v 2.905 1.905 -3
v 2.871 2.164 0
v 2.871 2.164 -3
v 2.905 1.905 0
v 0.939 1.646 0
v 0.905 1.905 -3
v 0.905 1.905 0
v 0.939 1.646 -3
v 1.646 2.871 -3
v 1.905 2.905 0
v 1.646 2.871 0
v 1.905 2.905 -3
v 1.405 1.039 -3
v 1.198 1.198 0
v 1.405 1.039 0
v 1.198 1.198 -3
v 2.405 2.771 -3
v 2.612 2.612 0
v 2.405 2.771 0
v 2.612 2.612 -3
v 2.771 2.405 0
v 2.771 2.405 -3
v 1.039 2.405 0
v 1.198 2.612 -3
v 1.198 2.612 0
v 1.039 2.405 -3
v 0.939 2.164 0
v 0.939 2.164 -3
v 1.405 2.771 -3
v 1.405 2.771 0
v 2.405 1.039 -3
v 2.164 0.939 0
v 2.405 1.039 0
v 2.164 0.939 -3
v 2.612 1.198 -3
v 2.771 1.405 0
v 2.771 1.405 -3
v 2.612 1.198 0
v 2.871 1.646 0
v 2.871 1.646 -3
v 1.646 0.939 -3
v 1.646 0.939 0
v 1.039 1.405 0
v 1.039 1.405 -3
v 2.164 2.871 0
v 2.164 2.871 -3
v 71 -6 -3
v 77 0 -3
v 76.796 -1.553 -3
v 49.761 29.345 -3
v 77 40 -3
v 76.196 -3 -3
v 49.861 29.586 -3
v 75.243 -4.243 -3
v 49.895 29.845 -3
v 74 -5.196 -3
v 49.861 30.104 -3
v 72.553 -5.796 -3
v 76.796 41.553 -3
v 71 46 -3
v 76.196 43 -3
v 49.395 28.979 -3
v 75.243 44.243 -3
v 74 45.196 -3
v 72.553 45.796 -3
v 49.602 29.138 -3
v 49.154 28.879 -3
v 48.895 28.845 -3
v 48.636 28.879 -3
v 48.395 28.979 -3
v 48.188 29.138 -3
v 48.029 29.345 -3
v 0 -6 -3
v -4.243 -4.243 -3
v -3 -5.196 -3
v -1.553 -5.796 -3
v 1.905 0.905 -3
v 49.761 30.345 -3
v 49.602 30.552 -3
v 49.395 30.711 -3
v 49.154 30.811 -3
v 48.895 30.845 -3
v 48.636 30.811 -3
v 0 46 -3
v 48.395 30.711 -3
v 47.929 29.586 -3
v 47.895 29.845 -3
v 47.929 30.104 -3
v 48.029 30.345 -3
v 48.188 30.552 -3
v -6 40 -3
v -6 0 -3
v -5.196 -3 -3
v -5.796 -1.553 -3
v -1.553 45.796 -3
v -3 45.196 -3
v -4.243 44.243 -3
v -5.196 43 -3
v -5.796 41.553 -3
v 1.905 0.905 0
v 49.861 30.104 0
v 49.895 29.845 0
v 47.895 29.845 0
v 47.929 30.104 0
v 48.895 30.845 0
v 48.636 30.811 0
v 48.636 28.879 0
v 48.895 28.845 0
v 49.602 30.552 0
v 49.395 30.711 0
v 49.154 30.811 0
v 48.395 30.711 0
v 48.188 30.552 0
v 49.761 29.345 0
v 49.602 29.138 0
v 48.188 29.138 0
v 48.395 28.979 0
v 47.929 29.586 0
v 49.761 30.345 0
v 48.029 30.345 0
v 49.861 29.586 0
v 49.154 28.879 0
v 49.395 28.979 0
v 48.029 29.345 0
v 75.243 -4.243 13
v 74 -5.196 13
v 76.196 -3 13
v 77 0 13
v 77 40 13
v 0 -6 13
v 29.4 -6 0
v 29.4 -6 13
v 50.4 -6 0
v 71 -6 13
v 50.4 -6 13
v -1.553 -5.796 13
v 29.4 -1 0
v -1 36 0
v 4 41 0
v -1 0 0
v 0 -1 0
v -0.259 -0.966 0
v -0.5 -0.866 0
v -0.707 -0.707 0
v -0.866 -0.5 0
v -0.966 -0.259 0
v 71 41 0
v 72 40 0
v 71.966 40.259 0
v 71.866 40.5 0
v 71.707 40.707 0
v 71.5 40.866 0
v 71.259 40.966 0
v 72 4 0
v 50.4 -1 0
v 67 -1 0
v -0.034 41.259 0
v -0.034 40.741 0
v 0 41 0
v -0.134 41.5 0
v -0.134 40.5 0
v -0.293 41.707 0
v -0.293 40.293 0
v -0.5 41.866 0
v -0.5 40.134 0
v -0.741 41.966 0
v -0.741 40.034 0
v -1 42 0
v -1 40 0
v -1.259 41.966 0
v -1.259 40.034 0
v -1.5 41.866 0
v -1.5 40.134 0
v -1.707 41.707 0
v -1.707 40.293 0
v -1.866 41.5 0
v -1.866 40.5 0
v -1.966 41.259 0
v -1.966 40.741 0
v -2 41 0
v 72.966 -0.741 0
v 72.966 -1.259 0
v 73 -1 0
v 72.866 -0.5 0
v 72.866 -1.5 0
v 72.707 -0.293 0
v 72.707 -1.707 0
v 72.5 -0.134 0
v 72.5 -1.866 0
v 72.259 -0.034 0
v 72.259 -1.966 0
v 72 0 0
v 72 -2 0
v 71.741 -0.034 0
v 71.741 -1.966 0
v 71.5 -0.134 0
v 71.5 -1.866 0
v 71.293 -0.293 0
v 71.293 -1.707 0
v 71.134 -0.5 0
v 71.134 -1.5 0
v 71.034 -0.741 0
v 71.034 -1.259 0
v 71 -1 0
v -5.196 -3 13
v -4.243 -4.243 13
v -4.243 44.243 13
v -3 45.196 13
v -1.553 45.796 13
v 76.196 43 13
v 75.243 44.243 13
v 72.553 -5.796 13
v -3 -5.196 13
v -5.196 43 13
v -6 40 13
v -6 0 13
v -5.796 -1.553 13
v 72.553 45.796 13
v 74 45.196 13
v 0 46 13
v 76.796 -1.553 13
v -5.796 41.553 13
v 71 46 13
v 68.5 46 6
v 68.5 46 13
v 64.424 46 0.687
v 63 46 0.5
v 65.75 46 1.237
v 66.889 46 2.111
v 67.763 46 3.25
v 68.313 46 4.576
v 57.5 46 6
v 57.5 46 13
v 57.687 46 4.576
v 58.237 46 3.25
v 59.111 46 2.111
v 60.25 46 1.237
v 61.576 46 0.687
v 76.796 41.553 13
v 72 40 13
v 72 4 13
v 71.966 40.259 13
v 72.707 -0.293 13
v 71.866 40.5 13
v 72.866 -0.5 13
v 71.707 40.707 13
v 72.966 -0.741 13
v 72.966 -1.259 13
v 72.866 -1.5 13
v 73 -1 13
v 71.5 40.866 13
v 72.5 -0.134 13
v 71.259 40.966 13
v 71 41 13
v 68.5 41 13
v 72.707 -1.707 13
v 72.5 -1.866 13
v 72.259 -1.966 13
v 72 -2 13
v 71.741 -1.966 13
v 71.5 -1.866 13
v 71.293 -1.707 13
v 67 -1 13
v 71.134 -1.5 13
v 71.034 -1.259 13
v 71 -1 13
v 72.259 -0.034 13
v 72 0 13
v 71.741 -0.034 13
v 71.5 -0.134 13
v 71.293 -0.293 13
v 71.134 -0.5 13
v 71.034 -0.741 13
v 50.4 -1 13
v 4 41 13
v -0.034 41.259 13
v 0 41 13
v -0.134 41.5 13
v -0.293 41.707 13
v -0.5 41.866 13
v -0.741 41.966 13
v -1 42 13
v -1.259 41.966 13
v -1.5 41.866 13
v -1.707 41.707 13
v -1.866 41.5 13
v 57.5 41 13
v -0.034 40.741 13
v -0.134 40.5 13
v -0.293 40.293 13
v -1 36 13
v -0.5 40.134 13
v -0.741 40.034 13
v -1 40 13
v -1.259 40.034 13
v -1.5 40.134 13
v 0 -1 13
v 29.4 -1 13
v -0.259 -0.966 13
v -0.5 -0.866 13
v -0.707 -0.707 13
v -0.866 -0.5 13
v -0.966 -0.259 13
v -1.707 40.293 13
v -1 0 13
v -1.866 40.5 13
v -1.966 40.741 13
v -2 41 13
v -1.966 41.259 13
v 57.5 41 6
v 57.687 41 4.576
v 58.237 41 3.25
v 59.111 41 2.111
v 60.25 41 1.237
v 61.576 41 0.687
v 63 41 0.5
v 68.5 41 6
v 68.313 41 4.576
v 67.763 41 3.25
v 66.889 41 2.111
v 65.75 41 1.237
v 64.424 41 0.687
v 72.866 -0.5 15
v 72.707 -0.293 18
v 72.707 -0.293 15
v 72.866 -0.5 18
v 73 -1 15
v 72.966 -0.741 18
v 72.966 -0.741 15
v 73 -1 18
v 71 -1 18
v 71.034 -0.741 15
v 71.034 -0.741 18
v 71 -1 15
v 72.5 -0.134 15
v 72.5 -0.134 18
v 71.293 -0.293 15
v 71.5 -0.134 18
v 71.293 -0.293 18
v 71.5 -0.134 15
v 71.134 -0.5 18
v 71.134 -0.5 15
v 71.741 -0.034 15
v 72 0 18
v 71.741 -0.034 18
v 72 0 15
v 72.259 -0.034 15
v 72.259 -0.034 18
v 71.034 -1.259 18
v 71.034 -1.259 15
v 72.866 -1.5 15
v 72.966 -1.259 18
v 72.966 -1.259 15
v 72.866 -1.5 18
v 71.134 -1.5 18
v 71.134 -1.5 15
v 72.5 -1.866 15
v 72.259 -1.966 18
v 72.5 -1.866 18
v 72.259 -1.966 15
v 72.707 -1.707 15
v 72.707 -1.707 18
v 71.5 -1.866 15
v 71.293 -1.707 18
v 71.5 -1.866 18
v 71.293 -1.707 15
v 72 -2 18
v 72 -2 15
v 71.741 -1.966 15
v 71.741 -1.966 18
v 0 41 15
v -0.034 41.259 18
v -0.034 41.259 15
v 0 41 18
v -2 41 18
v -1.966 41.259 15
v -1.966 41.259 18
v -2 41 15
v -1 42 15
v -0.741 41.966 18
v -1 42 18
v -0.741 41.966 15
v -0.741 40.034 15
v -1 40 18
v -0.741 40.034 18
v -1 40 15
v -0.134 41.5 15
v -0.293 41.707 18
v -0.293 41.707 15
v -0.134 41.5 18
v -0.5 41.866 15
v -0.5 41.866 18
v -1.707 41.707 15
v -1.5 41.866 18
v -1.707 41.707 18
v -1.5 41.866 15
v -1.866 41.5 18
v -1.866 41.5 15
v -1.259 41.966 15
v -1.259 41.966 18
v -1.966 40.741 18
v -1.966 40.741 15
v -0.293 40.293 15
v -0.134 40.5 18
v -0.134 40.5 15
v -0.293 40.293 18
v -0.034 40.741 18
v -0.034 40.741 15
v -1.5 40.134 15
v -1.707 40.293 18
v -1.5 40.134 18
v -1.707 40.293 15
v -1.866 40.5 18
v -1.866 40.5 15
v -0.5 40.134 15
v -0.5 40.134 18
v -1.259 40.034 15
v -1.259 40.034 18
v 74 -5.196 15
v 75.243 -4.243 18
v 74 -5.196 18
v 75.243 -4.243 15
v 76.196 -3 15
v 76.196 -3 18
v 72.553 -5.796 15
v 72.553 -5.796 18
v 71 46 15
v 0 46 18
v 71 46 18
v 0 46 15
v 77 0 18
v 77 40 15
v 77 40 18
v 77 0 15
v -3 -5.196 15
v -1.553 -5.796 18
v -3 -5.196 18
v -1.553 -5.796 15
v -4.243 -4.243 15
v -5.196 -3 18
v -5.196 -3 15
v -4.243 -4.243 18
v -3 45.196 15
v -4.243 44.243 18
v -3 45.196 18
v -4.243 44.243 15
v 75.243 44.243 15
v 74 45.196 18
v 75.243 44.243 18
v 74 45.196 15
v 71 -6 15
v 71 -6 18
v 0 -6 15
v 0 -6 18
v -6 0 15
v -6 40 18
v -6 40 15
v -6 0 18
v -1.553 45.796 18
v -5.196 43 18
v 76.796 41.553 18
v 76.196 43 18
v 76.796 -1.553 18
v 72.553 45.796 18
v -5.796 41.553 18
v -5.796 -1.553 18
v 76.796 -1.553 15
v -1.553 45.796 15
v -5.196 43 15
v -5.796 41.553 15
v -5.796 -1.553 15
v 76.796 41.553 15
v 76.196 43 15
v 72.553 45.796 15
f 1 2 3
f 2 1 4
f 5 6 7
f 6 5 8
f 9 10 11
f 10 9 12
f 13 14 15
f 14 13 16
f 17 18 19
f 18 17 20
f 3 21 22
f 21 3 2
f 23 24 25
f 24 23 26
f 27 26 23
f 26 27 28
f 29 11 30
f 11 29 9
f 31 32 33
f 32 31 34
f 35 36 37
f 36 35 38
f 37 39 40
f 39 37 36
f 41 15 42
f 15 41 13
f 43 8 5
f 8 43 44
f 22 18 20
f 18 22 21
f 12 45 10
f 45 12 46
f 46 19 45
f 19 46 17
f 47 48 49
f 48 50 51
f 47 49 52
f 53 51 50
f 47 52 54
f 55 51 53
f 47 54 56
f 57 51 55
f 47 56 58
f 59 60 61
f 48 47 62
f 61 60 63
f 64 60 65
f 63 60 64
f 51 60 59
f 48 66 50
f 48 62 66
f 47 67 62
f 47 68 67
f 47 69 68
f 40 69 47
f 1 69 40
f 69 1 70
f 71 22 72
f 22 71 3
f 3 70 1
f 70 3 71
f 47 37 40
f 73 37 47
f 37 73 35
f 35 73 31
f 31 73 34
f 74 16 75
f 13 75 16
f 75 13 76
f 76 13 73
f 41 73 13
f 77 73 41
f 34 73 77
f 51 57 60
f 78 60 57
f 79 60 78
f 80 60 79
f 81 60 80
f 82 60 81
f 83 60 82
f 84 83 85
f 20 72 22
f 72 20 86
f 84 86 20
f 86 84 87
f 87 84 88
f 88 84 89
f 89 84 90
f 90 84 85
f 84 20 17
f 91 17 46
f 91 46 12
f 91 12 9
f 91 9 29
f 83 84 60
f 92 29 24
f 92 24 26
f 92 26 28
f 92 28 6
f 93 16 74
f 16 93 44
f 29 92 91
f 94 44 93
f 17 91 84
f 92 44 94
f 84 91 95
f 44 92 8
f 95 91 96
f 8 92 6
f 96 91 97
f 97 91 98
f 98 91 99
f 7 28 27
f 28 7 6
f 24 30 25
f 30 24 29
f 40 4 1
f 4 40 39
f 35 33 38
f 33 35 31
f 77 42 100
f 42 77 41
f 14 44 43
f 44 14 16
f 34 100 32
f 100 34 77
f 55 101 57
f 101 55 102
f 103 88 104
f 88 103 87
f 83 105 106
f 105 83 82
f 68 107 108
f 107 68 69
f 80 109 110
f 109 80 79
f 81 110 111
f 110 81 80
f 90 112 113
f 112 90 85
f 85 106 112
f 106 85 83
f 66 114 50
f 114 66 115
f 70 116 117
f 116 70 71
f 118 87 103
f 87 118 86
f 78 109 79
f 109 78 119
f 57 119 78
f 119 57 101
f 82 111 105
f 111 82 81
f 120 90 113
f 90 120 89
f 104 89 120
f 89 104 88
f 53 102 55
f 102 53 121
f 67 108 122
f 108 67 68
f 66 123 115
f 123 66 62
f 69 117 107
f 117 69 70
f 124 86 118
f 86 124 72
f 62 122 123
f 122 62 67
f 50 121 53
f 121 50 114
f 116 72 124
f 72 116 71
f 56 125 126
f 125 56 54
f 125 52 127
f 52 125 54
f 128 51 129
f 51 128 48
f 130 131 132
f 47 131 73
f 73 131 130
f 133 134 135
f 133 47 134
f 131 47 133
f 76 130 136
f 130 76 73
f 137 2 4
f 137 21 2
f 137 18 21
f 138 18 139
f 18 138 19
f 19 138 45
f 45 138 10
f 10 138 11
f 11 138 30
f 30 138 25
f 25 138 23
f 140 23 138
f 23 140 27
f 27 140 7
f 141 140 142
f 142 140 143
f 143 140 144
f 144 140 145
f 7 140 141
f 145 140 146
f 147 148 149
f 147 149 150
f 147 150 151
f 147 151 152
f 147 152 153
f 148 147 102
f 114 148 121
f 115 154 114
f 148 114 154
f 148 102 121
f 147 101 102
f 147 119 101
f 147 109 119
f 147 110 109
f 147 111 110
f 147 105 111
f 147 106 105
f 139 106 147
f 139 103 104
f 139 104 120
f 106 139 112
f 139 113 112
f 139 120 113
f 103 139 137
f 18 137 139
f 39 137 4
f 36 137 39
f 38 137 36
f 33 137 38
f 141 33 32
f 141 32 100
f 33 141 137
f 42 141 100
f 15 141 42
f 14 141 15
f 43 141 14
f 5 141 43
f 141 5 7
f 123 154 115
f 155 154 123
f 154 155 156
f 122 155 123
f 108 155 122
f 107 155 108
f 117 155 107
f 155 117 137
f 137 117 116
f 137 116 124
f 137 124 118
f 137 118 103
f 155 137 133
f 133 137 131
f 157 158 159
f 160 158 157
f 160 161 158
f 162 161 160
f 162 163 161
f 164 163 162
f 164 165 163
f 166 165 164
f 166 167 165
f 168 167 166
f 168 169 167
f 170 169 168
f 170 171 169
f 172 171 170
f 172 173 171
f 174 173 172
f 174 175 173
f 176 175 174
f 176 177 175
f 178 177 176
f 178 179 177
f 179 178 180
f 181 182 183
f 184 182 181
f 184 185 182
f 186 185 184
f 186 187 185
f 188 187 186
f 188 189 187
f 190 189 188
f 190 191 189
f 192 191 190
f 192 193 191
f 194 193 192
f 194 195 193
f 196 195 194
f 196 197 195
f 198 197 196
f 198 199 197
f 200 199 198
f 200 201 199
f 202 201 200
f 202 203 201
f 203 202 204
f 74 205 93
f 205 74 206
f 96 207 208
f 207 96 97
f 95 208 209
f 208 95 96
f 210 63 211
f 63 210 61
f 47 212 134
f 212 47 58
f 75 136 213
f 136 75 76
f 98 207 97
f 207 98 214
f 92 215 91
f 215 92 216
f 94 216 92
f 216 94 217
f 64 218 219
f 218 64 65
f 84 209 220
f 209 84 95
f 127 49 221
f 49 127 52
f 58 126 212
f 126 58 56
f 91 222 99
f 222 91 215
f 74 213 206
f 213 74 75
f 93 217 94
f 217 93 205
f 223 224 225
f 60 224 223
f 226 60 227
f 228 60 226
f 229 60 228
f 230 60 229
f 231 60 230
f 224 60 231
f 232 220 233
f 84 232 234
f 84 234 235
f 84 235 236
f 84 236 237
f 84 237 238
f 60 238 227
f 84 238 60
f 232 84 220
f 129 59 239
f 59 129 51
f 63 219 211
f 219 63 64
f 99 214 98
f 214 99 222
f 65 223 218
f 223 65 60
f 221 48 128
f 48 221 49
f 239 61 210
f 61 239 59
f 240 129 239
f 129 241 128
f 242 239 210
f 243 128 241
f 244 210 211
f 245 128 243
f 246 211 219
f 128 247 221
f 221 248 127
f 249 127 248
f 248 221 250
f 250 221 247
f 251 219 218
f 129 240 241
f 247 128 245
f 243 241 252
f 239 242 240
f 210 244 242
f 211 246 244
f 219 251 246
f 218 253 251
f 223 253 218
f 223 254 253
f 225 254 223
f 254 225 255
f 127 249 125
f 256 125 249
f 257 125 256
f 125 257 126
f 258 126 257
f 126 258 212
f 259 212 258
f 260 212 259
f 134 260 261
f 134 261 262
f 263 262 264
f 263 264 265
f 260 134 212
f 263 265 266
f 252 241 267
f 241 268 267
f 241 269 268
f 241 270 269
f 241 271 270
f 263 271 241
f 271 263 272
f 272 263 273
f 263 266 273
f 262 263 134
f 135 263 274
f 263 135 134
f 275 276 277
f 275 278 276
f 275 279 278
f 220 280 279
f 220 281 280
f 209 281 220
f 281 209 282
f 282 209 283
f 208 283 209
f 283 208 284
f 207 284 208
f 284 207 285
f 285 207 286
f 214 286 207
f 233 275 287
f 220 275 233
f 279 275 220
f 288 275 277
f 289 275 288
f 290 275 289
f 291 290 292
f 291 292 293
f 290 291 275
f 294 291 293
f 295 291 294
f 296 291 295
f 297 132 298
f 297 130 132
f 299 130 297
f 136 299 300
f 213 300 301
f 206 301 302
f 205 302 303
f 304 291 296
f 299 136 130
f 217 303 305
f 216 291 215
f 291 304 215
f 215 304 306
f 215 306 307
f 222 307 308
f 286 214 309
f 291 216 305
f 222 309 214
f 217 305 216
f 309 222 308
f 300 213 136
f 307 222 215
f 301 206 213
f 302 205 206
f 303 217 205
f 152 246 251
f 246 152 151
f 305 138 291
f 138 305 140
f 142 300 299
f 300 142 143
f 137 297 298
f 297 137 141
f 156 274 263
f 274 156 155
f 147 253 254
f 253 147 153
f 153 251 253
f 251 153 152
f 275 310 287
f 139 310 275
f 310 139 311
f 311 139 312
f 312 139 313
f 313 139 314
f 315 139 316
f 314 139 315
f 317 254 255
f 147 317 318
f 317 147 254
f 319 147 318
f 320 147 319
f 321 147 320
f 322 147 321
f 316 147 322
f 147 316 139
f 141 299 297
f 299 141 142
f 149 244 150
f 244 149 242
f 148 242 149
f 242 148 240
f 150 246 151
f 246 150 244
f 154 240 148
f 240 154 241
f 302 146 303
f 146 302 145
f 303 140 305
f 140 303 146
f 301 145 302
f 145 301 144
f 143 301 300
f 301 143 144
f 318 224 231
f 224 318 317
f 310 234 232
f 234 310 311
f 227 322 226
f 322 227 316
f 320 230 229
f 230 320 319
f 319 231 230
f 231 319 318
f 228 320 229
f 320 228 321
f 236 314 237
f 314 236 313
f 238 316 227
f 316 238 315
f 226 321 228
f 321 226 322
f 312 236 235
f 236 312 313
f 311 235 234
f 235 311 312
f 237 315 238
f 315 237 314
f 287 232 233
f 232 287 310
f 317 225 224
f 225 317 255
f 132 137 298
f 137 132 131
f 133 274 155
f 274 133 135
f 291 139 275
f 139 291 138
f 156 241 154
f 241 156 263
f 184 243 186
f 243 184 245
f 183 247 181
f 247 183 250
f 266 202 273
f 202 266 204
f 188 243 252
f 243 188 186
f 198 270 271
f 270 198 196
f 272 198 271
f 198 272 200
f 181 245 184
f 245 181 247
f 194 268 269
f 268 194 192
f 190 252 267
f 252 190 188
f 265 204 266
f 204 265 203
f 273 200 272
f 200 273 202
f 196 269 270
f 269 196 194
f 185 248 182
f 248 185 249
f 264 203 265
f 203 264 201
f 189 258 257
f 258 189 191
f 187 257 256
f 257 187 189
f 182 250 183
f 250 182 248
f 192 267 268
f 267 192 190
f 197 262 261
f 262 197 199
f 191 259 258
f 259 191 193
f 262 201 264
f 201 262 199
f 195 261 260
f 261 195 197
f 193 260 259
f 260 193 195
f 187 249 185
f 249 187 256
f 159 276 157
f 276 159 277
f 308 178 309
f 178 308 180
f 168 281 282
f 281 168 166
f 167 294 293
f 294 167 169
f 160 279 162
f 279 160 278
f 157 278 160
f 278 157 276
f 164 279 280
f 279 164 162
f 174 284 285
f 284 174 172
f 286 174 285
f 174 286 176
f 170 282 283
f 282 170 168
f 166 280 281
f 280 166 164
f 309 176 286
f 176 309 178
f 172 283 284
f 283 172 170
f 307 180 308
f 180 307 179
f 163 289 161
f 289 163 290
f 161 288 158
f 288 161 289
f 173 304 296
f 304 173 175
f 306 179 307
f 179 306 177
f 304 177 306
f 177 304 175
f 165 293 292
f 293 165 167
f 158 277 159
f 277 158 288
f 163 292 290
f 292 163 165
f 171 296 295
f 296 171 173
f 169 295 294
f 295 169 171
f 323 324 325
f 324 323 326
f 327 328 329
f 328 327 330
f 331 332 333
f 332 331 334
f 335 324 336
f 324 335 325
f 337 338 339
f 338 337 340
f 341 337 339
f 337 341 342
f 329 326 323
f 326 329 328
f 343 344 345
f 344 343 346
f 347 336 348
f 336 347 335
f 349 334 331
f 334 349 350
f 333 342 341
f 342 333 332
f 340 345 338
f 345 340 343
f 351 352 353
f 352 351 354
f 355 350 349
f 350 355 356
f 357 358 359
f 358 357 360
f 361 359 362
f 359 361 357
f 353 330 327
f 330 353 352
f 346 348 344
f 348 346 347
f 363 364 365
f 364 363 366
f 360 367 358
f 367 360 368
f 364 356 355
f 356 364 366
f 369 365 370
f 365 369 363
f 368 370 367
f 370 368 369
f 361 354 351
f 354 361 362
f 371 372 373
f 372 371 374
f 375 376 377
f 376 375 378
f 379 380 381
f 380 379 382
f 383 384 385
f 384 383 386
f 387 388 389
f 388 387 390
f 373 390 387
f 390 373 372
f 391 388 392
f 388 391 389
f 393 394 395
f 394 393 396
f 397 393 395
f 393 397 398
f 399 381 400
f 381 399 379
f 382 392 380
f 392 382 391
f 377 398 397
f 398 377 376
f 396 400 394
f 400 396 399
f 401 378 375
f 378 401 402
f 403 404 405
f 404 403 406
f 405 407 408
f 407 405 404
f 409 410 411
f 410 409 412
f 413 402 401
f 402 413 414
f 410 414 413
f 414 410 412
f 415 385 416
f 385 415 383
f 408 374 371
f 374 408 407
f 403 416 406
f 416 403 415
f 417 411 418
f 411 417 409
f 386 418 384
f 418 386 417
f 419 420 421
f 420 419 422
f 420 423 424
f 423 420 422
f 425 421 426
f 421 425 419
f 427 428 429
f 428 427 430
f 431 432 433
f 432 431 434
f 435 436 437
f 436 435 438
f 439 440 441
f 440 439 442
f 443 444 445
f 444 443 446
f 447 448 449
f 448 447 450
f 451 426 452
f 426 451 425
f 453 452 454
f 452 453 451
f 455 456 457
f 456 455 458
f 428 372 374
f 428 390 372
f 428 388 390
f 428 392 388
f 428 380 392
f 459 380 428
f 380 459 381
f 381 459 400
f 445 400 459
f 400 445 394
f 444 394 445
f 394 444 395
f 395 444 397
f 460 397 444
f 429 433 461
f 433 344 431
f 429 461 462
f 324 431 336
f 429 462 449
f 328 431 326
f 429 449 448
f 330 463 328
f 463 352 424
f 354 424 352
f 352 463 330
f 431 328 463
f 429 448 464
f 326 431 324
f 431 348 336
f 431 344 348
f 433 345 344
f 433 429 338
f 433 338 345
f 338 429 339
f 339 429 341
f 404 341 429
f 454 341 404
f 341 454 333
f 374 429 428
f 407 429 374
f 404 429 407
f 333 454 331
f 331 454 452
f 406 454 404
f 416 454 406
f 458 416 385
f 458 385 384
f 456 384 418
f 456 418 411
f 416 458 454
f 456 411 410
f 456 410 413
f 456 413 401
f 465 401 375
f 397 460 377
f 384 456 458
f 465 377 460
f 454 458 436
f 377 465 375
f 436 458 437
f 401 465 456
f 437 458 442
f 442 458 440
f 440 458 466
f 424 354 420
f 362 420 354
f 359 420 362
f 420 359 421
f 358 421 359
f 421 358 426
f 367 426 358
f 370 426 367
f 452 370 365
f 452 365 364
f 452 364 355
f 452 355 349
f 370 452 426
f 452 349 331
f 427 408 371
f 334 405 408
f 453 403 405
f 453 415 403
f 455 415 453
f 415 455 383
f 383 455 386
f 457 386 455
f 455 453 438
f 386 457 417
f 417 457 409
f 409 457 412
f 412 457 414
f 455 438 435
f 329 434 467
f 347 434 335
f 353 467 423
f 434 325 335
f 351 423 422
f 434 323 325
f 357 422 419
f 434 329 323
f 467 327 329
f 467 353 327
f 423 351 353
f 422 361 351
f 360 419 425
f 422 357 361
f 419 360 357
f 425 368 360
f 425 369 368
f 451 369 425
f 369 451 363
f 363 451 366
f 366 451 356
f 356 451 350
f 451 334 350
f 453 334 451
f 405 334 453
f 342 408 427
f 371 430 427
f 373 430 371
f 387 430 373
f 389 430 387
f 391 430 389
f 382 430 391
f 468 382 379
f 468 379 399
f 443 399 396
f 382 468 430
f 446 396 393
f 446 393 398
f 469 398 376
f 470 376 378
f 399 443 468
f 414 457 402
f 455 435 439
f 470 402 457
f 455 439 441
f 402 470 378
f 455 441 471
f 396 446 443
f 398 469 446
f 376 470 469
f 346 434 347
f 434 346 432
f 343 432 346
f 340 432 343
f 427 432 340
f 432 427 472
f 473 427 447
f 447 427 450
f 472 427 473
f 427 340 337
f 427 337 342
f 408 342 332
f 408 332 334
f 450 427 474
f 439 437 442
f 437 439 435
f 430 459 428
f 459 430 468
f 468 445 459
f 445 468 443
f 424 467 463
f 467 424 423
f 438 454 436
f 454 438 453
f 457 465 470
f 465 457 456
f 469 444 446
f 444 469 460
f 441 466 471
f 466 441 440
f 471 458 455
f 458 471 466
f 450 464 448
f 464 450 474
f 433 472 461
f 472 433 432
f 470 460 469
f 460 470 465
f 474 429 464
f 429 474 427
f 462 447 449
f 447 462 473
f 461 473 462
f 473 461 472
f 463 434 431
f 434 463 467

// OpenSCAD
$fn=24;

HOLE_1_X = 1.905;
HOLE_1_Y = 1.905;
HOLE_2_X = 48.895;
HOLE_2_Y = 29.845;

BOARD_X = 51.0;
BOARD_Y = 32;
BOX_X = 71;
BOX_Y = 40;
BOARD_HEIGHT = 1.6;
BOARD_CLEARANCE = 4.0;


SCREW_TERMINAL_X = 29.4;
SCREW_TERMINAL_Y = 2.9;
SCREW_TERMINAL_WX = 21;
SCREW_TERMINAL_WY = 7;
SCREW_TERMINAL_WZ = 9;

BASE_THICKNESS = 3;
ROUNDNESS = 6;

BOX_HEIGHT = BOARD_CLEARANCE+SCREW_TERMINAL_WZ;

module base() {
    translate([0, 0, -BASE_THICKNESS]) 
    linear_extrude(height=BASE_THICKNESS) 
    offset(r=ROUNDNESS) square([BOX_X, BOX_Y]);
}

module plug_hole() {
    plug_dia = 11;
    plug_thickness = 15;
    translate([BOARD_X+5+7, BOX_Y, 6])
    rotate([-90, 0, 0])
    union() {
        cylinder(d=plug_dia, h=plug_thickness, center=true);
        translate([0, -(plug_dia/2), plug_dia/2])
        cube(plug_dia, center=true);
    }
}

module base_wall() {
    union() {
        difference() {
            difference() {
                linear_extrude(height=BOX_HEIGHT) offset(r=ROUNDNESS) square([BOX_X, BOX_Y]);
                translate([0,0,-1]) linear_extrude(height=BOX_HEIGHT+2) offset(r=1) square([BOX_X, BOX_Y]);
            }
            
            // screw terminal hole
            translate([SCREW_TERMINAL_X, -SCREW_TERMINAL_WY, -1])
            cube([SCREW_TERMINAL_WX, SCREW_TERMINAL_WY*2, BOARD_CLEARANCE+SCREW_TERMINAL_WZ+2]);
    
            plug_hole();
        }
        
        hull() {
            y_corner = BOX_Y+3;
            dx=-3;
            size=8;
            translate([dx, y_corner, 0]) cube([1, 1, BOX_HEIGHT]);
            translate([dx, y_corner-size, 0]) cube([1, 1, BOX_HEIGHT]);
            translate([dx+size, y_corner, 0]) cube([1, 1, BOX_HEIGHT]);

        }
        hull() {
            x_corner = BOX_X+3;
            dy=-3;
            size=8;
            translate([x_corner, dy, 0]) cube([1, 1, BOX_HEIGHT]);
            translate([x_corner-size, dy, 0]) cube([1, 1, BOX_HEIGHT]);
            translate([x_corner, dy+size, 0]) cube([1, 1, BOX_HEIGHT]);
        }

    }
    
}

module mounting_holes() {
    translate([HOLE_1_X, HOLE_1_Y, -3])
    cylinder(r=1, h=6);
    translate([HOLE_2_X, HOLE_2_Y, -3])
    cylinder(r=1, h=6);
}

module lid_screws() {
    z_fudge=5;
    screw_dia=2;
    roundness_fudge=screw_dia/2;
    translate([BOX_X+roundness_fudge, -roundness_fudge, -z_fudge]) cylinder(d=screw_dia, h=BOX_HEIGHT+(2*z_fudge));
    translate([-roundness_fudge, BOX_Y+roundness_fudge, -z_fudge]) cylinder(d=screw_dia, h=BOX_HEIGHT+(2*z_fudge));
}

module bottom() {
    union() {
        difference() {
            base();
            mounting_holes();
        }
        difference() {
            base_wall();
            lid_screws();
        }
    }
}

module top() {
    translate([0, 0, BOARD_CLEARANCE+SCREW_TERMINAL_WZ+5])
    difference() {
        base();
        lid_screws();
    }
}

module plug() {
    translate([7, 0, 6])
    rotate([-90, 0, 0])
    hull() {
        cylinder(h=37, d=10);
        translate([0, 0, 5])
        cube([14, 12, 10], center=true);
    }
}


bottom();
top();

//%translate([BOARD_X+5, 8, 0])
//plug();
//
